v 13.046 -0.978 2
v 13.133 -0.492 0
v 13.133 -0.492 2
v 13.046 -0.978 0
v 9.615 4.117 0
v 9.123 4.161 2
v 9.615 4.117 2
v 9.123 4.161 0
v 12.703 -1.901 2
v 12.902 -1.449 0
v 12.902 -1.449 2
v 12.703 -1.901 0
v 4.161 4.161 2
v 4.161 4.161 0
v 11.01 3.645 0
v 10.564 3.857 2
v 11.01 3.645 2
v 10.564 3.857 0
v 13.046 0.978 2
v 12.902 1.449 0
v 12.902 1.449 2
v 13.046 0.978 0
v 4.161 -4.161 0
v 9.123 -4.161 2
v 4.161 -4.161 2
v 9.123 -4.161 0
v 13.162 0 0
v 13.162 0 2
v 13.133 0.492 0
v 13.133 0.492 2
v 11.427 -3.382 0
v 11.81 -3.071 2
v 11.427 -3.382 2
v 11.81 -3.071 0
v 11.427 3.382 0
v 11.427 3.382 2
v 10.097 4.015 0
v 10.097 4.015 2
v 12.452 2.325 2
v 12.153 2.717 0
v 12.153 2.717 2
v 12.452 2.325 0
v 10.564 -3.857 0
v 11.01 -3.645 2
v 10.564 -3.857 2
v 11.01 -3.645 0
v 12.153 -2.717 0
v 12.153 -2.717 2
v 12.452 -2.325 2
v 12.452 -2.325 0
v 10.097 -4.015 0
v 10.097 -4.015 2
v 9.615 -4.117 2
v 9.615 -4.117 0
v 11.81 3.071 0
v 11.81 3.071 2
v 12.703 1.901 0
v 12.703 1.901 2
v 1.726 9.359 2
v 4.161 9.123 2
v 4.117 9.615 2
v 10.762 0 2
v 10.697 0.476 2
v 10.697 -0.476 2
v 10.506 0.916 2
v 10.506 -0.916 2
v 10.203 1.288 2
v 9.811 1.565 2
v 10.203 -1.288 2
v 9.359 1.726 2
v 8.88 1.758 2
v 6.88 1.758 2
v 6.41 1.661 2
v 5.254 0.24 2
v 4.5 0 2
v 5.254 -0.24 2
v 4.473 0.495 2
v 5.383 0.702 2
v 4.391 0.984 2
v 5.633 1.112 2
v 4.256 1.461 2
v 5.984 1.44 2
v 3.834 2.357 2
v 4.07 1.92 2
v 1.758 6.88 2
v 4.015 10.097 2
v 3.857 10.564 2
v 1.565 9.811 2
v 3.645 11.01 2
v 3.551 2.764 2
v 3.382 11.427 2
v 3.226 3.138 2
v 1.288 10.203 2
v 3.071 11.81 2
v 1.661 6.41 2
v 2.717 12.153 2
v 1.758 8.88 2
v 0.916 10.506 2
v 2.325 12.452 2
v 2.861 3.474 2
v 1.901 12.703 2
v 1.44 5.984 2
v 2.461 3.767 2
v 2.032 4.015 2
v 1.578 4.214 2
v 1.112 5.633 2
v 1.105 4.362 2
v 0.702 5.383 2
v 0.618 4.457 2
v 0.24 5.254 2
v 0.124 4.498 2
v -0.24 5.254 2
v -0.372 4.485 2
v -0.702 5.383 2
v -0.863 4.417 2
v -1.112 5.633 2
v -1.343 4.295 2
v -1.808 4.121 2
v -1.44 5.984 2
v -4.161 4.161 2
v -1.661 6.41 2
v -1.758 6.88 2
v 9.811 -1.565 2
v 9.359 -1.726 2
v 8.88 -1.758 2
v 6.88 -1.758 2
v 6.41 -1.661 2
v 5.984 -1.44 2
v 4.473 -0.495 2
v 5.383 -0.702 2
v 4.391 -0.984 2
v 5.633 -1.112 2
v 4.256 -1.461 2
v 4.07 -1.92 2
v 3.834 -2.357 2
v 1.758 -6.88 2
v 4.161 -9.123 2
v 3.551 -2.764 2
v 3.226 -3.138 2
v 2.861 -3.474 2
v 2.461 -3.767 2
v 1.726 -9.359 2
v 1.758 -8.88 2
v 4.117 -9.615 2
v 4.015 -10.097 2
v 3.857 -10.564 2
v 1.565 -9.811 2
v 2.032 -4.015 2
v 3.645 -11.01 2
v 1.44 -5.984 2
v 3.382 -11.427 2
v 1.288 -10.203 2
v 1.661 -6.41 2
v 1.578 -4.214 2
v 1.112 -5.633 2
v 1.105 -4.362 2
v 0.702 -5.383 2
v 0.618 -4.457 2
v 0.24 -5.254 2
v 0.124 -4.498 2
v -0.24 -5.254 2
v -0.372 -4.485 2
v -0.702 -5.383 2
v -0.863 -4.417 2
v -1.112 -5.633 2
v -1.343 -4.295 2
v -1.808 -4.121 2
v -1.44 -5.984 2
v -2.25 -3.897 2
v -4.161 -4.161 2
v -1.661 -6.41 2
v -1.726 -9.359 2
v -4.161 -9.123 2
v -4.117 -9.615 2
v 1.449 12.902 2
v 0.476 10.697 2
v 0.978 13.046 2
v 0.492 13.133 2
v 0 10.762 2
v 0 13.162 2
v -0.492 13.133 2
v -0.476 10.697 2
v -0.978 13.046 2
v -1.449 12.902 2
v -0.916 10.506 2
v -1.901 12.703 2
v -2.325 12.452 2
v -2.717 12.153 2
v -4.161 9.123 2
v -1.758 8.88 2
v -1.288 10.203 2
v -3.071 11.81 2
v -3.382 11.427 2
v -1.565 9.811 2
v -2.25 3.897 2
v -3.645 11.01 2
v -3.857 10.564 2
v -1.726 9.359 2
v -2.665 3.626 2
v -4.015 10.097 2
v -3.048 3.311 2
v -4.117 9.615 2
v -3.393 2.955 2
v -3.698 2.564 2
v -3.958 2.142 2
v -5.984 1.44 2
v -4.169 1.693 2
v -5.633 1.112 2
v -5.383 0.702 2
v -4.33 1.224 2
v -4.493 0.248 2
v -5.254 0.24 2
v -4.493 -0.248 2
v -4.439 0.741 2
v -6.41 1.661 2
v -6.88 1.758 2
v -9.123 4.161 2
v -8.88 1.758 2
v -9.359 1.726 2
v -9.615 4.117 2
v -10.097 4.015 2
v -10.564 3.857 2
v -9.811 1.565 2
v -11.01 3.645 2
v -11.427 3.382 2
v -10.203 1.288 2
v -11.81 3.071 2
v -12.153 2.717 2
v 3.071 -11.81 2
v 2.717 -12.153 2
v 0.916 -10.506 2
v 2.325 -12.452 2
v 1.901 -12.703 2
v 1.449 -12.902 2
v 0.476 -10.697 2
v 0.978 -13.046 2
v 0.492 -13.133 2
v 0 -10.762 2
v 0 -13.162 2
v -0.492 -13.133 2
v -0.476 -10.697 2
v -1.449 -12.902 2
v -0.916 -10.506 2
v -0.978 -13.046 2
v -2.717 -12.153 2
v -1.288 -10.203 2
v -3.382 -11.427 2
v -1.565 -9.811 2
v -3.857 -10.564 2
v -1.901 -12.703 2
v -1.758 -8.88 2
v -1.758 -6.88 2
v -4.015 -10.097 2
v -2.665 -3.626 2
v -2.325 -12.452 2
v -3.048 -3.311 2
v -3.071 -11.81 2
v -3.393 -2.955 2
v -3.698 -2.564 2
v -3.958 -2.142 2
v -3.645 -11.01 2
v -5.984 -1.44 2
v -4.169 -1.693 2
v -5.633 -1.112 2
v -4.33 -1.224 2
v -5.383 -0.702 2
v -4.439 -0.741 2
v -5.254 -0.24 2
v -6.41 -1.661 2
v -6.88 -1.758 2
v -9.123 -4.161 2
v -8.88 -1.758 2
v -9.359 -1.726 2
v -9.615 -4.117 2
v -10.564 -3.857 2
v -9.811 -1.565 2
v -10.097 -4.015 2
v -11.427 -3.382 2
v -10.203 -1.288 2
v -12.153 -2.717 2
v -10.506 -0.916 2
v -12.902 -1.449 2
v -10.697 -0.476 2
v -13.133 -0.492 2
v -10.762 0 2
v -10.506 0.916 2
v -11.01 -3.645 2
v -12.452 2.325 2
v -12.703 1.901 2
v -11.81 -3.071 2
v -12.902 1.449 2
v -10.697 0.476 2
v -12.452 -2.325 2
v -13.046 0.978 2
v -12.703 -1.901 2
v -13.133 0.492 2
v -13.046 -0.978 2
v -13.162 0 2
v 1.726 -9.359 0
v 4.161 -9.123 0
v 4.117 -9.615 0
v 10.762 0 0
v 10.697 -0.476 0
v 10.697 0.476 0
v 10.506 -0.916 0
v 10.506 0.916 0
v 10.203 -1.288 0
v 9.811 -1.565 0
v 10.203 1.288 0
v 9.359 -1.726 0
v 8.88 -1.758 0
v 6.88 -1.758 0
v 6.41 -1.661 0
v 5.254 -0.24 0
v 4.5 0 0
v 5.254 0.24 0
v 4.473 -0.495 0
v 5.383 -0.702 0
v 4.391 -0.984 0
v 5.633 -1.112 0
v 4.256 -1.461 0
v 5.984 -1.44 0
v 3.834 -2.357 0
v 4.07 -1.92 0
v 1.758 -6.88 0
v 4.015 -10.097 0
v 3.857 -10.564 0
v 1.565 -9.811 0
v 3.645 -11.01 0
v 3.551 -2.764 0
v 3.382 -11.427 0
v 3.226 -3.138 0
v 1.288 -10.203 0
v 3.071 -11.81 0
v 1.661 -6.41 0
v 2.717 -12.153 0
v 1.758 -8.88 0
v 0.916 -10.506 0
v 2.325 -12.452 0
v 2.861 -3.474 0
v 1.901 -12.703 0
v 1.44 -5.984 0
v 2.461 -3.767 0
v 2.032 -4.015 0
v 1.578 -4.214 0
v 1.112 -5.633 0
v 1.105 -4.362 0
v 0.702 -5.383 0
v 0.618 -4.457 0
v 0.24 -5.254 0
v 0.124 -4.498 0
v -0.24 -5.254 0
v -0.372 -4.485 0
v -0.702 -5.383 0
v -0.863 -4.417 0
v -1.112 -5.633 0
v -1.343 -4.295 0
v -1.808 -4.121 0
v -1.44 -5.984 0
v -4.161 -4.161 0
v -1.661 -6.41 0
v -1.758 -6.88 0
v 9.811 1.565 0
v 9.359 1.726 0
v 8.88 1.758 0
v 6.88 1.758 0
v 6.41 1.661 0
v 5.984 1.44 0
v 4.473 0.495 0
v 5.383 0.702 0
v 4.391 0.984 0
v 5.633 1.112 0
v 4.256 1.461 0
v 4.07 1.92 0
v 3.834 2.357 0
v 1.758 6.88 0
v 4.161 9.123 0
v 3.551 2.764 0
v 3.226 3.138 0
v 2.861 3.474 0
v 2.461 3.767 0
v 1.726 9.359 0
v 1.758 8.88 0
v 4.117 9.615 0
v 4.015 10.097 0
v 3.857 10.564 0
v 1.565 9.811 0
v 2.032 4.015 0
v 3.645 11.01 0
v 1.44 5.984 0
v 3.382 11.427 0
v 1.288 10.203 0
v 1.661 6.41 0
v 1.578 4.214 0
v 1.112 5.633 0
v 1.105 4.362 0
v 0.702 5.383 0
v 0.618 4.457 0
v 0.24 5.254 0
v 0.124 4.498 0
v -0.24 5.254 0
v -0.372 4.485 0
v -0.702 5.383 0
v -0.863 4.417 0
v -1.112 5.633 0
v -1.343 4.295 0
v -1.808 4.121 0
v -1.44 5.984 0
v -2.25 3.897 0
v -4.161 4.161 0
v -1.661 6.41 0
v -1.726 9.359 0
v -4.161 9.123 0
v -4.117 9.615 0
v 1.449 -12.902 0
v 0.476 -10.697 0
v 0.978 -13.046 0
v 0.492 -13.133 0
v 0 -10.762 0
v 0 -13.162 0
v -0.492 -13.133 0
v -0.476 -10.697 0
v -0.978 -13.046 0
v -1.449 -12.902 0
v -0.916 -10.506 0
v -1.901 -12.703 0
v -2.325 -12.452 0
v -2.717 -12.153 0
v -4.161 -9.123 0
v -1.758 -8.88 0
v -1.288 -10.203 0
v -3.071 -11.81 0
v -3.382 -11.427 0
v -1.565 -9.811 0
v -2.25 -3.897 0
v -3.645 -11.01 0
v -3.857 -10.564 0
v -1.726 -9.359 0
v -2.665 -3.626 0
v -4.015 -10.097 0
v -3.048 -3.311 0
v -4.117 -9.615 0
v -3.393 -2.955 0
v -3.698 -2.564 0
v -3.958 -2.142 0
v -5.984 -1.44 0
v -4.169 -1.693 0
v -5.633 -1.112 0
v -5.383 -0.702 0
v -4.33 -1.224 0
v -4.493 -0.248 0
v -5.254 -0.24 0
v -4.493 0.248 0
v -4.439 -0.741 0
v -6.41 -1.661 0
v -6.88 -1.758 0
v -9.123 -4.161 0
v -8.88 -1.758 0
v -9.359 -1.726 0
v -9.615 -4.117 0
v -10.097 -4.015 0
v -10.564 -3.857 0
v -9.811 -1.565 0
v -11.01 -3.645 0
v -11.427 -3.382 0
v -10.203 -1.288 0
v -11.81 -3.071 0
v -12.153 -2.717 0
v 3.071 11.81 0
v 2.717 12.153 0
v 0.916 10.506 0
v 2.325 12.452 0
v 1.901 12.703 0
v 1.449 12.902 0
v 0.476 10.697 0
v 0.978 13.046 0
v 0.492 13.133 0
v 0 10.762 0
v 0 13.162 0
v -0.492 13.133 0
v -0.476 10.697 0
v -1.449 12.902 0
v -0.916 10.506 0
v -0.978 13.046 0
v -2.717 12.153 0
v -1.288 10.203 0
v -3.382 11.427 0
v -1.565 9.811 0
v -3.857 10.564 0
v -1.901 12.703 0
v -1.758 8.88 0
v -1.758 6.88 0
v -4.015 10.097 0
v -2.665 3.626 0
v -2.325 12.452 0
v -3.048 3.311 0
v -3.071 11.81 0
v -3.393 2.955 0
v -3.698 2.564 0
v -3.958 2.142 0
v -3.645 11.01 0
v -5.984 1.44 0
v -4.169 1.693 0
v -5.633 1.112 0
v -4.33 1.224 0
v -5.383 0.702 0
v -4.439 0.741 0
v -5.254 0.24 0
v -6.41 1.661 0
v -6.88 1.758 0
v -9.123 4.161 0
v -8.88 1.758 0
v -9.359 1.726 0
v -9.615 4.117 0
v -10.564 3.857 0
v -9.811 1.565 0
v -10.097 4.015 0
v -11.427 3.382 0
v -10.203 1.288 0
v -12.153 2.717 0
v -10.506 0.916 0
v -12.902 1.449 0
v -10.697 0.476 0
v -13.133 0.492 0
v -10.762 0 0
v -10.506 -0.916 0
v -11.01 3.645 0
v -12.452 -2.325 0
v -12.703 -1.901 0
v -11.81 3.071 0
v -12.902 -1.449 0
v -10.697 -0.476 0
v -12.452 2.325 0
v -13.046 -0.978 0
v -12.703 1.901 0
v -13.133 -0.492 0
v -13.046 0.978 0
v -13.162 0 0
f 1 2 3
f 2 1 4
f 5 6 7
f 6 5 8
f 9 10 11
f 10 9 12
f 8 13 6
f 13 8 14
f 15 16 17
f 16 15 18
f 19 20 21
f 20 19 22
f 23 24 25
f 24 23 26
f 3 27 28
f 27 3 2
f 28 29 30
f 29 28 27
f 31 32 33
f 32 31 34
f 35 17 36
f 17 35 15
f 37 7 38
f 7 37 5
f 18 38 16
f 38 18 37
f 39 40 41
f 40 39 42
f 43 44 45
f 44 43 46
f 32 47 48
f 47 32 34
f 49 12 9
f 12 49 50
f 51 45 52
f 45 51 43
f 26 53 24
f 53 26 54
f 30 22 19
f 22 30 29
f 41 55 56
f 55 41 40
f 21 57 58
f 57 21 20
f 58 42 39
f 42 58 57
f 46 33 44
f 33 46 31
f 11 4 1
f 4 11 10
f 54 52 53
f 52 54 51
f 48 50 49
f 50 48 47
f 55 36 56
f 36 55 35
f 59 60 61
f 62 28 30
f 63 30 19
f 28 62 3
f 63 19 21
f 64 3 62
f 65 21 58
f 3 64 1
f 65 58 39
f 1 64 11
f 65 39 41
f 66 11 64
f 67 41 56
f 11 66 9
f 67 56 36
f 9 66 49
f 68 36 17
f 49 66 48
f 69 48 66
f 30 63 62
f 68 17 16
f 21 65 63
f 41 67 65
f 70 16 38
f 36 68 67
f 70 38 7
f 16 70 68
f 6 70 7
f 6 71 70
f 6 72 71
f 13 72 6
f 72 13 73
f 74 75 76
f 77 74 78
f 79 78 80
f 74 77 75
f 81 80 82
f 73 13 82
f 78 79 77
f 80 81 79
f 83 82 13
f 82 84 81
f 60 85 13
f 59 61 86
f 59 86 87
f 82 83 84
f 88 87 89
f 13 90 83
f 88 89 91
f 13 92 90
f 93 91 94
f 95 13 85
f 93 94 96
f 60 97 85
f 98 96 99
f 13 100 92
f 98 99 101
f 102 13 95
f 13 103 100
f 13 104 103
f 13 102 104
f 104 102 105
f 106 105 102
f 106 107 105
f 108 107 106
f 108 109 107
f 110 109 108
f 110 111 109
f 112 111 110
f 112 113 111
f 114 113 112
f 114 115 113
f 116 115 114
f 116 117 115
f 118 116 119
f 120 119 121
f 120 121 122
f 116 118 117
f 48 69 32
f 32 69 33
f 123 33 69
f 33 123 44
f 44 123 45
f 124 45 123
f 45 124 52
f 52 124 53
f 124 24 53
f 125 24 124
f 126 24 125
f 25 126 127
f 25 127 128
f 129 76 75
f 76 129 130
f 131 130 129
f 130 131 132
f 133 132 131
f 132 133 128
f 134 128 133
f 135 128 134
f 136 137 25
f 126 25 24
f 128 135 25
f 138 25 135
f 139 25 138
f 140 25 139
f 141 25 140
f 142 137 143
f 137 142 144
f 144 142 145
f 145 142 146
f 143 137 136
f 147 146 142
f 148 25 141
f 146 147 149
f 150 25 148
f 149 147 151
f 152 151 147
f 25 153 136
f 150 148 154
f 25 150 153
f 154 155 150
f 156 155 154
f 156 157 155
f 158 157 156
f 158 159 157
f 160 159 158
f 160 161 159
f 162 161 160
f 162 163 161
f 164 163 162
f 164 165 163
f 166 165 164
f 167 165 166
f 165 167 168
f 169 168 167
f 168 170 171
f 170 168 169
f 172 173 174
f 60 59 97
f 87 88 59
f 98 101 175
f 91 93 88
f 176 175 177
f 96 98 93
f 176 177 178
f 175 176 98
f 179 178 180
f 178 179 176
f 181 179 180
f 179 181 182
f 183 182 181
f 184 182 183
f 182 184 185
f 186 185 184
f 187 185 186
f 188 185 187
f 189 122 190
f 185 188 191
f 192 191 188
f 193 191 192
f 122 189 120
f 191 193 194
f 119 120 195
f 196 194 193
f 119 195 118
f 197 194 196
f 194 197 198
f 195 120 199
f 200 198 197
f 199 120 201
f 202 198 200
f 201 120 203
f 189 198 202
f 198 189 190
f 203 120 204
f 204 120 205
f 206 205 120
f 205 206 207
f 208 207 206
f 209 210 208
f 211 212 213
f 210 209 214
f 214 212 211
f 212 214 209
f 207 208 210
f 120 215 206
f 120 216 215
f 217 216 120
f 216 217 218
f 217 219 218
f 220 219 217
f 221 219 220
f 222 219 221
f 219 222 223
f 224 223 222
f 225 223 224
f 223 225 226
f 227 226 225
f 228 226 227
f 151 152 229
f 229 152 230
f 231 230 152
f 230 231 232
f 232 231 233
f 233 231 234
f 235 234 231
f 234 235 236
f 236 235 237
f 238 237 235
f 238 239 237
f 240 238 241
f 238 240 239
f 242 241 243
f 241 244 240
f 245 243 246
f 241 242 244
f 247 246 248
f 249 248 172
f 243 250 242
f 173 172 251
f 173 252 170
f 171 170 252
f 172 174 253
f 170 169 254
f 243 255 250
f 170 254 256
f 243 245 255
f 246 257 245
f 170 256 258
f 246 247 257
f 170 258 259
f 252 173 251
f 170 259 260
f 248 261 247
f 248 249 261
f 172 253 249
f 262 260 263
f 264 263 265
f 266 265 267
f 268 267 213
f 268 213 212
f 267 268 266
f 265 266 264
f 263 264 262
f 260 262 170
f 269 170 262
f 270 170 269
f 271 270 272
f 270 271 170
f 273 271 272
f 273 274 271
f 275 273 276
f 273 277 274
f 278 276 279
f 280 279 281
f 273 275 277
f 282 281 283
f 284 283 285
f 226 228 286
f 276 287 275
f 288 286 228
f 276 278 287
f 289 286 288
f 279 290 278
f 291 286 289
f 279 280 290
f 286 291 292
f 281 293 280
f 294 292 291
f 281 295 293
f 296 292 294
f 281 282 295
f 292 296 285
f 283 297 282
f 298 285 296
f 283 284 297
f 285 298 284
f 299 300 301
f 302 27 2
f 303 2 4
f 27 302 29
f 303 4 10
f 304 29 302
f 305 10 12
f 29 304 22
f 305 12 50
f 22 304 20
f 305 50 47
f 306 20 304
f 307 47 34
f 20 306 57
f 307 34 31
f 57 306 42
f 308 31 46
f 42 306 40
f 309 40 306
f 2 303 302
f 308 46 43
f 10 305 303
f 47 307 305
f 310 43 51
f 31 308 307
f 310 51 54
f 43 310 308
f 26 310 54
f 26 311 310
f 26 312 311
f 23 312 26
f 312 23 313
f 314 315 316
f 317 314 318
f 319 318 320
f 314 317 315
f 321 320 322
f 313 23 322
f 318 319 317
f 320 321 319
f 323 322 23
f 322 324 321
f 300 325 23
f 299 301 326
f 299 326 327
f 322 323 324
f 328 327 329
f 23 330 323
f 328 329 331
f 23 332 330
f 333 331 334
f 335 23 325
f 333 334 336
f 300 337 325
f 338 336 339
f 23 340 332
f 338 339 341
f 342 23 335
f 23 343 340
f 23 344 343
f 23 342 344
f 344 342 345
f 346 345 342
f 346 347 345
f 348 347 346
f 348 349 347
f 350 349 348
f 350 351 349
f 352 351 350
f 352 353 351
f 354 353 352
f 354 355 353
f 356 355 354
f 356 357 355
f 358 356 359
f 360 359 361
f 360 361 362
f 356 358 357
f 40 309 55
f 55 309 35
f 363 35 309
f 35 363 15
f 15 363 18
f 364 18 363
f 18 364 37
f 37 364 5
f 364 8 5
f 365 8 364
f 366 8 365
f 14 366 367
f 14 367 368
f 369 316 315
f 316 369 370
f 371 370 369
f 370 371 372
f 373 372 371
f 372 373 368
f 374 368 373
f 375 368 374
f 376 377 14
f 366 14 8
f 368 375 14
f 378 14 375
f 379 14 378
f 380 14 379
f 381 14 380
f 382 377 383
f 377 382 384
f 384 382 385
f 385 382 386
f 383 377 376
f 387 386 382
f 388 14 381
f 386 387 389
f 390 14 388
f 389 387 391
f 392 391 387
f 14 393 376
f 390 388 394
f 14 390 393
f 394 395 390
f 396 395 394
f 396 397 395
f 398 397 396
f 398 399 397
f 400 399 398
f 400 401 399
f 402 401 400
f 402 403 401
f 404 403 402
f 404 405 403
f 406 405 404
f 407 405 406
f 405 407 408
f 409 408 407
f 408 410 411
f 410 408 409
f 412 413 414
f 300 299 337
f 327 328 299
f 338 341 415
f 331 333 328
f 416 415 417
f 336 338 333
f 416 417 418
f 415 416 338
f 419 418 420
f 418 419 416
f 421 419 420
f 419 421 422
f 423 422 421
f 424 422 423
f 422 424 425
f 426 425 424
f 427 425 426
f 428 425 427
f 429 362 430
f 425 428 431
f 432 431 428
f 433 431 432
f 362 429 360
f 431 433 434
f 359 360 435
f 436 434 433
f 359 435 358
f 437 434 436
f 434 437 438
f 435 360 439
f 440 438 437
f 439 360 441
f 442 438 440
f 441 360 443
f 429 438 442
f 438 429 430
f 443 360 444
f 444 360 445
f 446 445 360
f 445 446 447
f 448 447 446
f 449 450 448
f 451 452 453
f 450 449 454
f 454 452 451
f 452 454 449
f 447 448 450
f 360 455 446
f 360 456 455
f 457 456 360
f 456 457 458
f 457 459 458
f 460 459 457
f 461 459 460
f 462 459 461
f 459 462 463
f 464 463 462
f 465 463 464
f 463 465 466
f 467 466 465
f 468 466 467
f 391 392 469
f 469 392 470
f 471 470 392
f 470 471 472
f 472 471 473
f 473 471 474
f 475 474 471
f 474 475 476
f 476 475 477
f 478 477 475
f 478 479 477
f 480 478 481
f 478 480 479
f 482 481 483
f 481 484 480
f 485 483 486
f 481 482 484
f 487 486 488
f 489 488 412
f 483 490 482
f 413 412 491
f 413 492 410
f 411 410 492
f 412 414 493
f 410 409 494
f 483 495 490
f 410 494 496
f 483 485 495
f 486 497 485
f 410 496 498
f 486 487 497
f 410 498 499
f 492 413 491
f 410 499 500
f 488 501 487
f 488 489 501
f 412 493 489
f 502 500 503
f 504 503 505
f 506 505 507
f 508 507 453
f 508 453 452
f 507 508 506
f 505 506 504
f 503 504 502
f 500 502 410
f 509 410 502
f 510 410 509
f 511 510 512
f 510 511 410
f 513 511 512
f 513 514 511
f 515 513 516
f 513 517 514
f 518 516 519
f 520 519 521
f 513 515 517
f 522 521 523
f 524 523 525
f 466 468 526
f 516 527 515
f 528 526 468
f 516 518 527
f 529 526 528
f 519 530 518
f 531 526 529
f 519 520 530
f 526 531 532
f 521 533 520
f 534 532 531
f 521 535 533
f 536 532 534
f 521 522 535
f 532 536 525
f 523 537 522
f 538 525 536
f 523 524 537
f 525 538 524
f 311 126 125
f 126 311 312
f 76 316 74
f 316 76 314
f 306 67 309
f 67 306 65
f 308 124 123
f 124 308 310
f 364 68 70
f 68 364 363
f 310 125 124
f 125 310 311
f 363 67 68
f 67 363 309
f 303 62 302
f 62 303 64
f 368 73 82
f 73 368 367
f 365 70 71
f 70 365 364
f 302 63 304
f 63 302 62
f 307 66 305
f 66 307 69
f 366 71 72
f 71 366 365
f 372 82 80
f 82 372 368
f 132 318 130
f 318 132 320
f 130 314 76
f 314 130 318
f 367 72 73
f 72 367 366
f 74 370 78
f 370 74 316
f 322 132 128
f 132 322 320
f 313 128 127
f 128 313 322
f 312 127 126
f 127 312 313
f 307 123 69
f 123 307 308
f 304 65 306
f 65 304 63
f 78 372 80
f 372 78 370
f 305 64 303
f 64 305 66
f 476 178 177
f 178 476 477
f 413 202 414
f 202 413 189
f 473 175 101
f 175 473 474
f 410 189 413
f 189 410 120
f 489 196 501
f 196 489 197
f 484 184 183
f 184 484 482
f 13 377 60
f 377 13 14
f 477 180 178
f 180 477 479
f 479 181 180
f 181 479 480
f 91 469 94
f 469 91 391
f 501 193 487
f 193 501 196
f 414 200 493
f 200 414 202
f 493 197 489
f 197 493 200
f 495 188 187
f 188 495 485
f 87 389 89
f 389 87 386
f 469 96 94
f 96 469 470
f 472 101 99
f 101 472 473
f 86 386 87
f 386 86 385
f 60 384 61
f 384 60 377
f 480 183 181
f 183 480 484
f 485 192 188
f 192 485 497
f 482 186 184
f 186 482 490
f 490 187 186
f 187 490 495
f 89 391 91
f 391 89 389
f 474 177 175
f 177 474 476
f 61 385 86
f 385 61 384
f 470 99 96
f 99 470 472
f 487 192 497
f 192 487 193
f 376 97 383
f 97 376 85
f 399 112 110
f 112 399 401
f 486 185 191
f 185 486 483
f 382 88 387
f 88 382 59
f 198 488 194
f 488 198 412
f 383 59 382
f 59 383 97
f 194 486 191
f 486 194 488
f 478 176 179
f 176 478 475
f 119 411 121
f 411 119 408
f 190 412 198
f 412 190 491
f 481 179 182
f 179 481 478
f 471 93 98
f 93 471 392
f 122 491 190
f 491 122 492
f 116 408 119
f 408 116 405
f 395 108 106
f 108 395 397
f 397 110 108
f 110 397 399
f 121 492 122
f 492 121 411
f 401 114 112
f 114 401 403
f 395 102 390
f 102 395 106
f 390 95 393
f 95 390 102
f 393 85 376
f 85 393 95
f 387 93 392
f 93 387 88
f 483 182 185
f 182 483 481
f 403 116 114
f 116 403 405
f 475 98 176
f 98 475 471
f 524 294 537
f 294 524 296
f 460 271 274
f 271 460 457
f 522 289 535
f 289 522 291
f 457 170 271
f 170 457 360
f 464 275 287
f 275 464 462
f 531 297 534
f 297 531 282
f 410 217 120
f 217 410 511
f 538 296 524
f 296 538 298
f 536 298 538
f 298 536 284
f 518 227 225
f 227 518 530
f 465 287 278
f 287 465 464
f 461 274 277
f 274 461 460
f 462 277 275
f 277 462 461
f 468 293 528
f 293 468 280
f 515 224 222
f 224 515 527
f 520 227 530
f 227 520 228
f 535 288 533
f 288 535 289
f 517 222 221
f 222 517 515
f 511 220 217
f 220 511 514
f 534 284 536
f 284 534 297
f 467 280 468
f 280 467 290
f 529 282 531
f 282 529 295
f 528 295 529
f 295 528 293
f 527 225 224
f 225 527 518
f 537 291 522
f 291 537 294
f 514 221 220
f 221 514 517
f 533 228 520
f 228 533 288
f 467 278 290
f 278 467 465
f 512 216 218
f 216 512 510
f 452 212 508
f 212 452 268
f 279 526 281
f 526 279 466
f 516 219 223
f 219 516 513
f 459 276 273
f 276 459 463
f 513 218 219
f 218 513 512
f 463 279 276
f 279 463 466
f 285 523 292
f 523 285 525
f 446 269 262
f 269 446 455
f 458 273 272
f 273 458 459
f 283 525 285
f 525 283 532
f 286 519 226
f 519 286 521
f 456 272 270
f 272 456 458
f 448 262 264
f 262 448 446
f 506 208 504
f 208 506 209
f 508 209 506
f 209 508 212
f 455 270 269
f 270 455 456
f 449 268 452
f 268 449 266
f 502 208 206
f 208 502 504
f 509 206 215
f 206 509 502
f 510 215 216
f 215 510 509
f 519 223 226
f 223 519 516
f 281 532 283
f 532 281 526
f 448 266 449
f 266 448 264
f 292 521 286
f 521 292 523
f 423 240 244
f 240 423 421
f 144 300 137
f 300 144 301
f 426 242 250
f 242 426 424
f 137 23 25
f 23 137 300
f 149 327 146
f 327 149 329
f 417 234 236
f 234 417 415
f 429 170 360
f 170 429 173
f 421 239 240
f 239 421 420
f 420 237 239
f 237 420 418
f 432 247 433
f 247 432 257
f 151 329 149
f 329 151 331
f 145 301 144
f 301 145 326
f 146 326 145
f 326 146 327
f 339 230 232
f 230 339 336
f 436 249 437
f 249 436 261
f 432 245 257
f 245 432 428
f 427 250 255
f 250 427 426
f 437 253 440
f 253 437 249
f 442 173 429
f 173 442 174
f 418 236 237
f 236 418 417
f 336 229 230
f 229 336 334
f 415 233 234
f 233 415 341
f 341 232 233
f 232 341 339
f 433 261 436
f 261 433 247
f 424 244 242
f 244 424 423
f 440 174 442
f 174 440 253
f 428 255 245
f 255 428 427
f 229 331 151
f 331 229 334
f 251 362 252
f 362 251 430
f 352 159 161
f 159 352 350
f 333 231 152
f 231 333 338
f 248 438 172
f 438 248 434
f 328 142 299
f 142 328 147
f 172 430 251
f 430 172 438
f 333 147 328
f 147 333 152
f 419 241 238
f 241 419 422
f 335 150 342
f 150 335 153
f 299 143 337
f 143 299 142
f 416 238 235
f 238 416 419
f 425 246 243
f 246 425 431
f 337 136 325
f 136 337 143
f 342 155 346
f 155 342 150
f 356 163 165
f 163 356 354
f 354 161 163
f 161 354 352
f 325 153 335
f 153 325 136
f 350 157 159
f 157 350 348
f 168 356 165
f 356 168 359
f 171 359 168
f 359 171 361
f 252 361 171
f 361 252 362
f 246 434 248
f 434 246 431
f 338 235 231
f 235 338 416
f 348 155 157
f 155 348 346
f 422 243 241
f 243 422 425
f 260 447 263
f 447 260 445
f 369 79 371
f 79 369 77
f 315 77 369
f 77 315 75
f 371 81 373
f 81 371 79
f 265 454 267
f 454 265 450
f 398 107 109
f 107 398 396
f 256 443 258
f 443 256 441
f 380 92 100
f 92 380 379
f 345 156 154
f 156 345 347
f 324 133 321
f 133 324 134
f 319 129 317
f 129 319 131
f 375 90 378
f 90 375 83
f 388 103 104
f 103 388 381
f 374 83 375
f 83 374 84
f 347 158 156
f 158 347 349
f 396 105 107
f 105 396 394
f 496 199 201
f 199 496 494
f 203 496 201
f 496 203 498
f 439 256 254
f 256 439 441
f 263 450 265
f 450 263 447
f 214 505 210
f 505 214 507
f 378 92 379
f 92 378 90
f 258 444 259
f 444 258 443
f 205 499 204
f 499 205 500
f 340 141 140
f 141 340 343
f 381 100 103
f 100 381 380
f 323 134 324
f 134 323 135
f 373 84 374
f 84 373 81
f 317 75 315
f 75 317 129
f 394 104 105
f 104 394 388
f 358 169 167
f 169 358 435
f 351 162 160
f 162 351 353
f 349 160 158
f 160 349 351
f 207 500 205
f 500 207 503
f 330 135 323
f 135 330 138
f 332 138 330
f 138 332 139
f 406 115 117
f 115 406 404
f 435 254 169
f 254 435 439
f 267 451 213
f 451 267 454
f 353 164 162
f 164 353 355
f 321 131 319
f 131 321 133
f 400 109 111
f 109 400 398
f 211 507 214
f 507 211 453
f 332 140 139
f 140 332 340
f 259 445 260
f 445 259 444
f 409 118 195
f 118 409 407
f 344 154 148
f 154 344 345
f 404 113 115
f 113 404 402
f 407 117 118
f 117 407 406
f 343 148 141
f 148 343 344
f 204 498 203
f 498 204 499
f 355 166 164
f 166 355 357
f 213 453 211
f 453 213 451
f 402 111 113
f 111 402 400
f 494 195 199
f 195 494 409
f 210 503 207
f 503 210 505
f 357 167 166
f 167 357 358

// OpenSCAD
// Simple M3 spacers printed with TPU

mount_height = 2;
screw_width = 3;
motor_min_mount = 7;
motor_max_mount = 9;

anti_warp = .15;
filament_width = 1.75;

single_mount_width = screw_width * 2.6;

$fs = $preview ? 1 : 0.5;
$fa = $preview ? 20 : 5;

motor_diff = motor_max_mount - motor_min_mount;

function anti_warp_shrink(v) = v - (filament_width * anti_warp) * 2;
function anti_warp_widen(v) = v + (filament_width * anti_warp) * 2;

module outer_cyl() {
	cylinder(h = mount_height, d = anti_warp_widen(single_mount_width));
}

module inner_cyl() {
	cylinder(h = mount_height, d = anti_warp_widen(screw_width));
}

module single_mount() {
	translate([motor_min_mount, 0]) difference() {
		hull() {
			translate([motor_diff, 0]) outer_cyl();
			translate([-motor_min_mount, 0]) outer_cyl();
		}
		hull() {
			inner_cyl();
			translate([motor_diff, 0]) inner_cyl();
		}
	}
}

module mount() {
	difference() {
		union() {
			for (i = [0, 90, 180, 270]) {
				rotate([0, 0, i]) single_mount();
			}
		}
		#cylinder(h = mount_height, d = 9);
	}
}

mount();
